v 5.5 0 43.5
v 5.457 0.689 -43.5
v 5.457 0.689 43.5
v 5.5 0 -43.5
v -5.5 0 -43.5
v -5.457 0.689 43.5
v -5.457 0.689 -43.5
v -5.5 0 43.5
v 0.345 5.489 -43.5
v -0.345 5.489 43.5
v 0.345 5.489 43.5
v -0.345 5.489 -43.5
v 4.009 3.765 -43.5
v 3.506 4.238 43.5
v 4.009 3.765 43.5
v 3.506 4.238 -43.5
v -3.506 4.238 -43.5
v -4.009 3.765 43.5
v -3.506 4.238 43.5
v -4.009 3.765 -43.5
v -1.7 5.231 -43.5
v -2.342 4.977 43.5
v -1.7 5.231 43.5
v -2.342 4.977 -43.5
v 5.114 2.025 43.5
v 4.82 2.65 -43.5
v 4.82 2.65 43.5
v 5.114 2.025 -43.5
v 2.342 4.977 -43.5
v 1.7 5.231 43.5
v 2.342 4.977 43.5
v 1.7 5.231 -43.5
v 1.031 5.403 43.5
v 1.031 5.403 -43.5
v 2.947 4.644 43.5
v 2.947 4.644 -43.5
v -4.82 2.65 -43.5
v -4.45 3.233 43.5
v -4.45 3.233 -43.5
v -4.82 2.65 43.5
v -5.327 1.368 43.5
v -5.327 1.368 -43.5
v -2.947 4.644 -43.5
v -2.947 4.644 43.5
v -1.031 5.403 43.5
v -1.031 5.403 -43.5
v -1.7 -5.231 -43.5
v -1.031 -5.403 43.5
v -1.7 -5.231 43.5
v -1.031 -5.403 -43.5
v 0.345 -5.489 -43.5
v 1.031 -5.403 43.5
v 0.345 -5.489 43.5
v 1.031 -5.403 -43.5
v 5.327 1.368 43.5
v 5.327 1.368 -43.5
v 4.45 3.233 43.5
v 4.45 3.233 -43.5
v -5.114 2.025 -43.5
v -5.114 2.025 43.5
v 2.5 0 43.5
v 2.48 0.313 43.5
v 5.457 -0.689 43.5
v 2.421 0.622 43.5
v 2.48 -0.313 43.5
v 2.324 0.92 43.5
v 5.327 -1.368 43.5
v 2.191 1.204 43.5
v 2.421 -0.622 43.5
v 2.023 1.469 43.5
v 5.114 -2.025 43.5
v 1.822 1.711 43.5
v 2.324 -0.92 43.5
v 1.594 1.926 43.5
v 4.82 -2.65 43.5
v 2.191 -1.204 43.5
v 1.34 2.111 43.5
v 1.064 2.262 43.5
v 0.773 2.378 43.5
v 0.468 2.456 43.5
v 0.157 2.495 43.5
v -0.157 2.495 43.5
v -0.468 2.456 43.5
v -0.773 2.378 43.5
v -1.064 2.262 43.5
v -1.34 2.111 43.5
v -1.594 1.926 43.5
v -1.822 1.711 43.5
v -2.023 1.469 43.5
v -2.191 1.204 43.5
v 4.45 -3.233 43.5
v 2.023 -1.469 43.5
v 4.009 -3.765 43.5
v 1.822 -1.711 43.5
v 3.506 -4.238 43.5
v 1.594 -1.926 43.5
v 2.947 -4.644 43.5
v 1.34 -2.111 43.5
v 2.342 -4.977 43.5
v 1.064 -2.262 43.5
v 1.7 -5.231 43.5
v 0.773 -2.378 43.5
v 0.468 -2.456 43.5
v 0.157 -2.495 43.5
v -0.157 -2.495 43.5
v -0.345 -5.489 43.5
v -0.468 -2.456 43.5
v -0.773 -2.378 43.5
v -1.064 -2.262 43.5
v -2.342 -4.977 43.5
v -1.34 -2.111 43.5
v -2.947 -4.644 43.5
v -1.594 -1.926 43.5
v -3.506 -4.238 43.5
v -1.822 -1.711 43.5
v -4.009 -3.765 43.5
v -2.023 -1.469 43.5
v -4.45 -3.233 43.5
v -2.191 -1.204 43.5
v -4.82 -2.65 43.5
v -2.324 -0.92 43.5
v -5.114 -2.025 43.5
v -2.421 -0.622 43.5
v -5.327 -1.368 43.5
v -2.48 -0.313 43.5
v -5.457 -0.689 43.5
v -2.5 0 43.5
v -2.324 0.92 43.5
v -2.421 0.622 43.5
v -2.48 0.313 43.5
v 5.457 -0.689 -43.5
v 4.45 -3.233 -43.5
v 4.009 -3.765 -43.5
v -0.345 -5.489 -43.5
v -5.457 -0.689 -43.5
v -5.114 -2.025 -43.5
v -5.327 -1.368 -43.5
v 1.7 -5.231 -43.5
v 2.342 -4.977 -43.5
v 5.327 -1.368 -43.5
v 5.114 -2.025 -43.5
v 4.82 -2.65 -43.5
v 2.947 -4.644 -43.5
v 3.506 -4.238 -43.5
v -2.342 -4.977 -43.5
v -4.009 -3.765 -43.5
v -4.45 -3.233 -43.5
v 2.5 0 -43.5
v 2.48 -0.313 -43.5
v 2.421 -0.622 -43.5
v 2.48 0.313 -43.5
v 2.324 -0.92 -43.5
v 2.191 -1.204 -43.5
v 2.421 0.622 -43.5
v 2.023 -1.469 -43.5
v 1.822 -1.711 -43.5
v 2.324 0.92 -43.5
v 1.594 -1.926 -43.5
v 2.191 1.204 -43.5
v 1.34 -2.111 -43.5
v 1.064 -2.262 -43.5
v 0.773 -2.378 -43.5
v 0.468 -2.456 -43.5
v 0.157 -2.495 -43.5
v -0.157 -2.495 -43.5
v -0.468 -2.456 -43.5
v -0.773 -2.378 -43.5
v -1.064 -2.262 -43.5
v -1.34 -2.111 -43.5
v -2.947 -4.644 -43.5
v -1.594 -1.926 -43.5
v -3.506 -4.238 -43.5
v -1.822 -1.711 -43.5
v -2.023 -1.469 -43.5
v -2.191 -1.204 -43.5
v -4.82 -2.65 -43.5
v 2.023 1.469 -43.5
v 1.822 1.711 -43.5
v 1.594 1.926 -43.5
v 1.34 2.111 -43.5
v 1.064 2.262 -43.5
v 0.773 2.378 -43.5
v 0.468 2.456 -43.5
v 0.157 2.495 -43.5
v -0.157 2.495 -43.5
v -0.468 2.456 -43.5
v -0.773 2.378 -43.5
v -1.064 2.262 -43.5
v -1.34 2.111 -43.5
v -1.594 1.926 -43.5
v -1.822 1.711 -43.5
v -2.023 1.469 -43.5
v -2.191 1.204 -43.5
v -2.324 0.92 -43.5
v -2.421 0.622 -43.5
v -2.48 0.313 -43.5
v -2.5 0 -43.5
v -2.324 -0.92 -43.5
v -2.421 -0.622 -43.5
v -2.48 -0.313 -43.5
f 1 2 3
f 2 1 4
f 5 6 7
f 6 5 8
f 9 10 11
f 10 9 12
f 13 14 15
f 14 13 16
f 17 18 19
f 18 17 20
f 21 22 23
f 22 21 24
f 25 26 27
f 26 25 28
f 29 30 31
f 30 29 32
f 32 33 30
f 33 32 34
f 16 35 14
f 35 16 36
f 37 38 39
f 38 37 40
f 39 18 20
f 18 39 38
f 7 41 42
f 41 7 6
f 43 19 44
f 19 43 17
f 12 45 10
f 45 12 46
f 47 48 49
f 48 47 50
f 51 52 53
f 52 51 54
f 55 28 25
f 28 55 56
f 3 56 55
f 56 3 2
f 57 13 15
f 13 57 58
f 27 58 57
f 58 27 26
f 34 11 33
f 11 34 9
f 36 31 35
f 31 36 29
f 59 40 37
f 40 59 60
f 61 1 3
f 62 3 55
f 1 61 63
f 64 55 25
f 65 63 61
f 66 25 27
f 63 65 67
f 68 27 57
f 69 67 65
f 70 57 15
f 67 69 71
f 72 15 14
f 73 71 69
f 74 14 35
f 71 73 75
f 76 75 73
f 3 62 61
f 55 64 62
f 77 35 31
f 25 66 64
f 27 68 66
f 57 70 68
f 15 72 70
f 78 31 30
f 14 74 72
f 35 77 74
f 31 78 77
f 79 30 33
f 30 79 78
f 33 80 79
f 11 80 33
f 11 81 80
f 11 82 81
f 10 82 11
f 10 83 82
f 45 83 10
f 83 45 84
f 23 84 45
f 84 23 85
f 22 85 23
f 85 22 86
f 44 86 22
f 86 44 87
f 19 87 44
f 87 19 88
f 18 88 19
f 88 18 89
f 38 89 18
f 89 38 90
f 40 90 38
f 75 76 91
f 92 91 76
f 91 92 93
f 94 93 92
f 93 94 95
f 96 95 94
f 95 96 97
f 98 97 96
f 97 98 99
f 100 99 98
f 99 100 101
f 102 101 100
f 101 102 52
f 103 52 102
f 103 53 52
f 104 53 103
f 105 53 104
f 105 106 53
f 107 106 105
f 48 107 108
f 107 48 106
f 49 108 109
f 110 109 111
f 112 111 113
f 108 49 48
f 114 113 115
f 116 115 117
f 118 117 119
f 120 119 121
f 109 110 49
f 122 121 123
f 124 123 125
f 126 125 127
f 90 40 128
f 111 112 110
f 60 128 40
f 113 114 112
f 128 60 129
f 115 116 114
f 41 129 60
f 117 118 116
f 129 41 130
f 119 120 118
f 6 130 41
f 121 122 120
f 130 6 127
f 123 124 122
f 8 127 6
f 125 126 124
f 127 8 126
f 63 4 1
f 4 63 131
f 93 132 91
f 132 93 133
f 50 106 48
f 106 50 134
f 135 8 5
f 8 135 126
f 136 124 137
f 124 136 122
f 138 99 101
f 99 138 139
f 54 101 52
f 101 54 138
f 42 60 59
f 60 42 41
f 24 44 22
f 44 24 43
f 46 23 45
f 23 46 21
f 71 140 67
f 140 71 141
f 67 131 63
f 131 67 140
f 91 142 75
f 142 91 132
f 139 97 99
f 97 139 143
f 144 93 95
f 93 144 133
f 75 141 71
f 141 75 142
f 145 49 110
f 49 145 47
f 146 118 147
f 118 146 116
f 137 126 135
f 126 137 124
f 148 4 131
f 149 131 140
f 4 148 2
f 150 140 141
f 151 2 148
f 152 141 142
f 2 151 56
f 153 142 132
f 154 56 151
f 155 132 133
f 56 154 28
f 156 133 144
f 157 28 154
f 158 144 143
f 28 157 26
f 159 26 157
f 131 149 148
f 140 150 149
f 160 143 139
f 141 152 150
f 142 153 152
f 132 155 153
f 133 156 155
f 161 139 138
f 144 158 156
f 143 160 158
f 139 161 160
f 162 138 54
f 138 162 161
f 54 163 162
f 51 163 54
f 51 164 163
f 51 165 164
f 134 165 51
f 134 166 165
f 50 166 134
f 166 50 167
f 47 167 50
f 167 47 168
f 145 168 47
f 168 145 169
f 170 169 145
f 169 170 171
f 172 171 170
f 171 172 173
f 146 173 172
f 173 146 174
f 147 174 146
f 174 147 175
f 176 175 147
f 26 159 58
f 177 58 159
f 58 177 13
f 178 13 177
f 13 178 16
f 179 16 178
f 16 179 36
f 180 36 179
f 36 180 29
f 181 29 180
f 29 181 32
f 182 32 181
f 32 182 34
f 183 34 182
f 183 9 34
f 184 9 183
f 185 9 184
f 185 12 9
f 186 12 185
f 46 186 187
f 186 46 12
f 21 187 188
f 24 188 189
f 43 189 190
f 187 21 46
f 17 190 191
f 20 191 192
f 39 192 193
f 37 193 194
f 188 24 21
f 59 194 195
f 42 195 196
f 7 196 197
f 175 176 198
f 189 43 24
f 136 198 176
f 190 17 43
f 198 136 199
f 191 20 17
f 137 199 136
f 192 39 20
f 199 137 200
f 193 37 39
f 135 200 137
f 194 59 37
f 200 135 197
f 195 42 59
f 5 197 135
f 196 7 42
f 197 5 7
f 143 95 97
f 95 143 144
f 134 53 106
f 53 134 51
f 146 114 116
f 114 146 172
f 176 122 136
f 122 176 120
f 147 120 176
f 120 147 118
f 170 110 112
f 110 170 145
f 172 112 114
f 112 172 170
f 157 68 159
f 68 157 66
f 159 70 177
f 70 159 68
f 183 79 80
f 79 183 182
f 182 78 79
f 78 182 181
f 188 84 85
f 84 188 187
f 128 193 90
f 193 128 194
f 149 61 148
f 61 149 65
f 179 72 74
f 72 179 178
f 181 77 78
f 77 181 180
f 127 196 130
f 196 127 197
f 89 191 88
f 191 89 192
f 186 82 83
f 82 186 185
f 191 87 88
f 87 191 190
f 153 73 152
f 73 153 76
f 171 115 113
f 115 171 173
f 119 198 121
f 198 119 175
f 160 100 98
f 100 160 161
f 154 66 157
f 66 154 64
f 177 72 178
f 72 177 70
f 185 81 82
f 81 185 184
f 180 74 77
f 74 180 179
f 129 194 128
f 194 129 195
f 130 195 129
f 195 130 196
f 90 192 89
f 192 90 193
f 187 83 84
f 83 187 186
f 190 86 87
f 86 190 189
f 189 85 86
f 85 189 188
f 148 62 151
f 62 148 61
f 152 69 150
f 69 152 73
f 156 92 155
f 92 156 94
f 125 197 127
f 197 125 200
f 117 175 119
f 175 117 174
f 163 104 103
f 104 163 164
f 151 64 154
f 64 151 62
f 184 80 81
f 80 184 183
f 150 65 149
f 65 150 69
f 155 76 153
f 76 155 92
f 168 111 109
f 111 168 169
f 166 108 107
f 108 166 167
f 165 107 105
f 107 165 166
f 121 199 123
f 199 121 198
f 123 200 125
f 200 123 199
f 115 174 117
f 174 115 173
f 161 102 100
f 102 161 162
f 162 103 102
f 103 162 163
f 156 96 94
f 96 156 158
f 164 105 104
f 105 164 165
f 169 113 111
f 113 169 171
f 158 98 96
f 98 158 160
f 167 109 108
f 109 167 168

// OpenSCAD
$fn = 50;


difference() {
	union() {
		translate(v = [0, 0, -43.5000000000]) {
			cylinder(h = 87, r = 5.5000000000);
		}
	}
	union() {
		translate(v = [0, 0, -100.0000000000]) {
			cylinder(h = 200, r = 2.5000000000);
		}
	}
}
